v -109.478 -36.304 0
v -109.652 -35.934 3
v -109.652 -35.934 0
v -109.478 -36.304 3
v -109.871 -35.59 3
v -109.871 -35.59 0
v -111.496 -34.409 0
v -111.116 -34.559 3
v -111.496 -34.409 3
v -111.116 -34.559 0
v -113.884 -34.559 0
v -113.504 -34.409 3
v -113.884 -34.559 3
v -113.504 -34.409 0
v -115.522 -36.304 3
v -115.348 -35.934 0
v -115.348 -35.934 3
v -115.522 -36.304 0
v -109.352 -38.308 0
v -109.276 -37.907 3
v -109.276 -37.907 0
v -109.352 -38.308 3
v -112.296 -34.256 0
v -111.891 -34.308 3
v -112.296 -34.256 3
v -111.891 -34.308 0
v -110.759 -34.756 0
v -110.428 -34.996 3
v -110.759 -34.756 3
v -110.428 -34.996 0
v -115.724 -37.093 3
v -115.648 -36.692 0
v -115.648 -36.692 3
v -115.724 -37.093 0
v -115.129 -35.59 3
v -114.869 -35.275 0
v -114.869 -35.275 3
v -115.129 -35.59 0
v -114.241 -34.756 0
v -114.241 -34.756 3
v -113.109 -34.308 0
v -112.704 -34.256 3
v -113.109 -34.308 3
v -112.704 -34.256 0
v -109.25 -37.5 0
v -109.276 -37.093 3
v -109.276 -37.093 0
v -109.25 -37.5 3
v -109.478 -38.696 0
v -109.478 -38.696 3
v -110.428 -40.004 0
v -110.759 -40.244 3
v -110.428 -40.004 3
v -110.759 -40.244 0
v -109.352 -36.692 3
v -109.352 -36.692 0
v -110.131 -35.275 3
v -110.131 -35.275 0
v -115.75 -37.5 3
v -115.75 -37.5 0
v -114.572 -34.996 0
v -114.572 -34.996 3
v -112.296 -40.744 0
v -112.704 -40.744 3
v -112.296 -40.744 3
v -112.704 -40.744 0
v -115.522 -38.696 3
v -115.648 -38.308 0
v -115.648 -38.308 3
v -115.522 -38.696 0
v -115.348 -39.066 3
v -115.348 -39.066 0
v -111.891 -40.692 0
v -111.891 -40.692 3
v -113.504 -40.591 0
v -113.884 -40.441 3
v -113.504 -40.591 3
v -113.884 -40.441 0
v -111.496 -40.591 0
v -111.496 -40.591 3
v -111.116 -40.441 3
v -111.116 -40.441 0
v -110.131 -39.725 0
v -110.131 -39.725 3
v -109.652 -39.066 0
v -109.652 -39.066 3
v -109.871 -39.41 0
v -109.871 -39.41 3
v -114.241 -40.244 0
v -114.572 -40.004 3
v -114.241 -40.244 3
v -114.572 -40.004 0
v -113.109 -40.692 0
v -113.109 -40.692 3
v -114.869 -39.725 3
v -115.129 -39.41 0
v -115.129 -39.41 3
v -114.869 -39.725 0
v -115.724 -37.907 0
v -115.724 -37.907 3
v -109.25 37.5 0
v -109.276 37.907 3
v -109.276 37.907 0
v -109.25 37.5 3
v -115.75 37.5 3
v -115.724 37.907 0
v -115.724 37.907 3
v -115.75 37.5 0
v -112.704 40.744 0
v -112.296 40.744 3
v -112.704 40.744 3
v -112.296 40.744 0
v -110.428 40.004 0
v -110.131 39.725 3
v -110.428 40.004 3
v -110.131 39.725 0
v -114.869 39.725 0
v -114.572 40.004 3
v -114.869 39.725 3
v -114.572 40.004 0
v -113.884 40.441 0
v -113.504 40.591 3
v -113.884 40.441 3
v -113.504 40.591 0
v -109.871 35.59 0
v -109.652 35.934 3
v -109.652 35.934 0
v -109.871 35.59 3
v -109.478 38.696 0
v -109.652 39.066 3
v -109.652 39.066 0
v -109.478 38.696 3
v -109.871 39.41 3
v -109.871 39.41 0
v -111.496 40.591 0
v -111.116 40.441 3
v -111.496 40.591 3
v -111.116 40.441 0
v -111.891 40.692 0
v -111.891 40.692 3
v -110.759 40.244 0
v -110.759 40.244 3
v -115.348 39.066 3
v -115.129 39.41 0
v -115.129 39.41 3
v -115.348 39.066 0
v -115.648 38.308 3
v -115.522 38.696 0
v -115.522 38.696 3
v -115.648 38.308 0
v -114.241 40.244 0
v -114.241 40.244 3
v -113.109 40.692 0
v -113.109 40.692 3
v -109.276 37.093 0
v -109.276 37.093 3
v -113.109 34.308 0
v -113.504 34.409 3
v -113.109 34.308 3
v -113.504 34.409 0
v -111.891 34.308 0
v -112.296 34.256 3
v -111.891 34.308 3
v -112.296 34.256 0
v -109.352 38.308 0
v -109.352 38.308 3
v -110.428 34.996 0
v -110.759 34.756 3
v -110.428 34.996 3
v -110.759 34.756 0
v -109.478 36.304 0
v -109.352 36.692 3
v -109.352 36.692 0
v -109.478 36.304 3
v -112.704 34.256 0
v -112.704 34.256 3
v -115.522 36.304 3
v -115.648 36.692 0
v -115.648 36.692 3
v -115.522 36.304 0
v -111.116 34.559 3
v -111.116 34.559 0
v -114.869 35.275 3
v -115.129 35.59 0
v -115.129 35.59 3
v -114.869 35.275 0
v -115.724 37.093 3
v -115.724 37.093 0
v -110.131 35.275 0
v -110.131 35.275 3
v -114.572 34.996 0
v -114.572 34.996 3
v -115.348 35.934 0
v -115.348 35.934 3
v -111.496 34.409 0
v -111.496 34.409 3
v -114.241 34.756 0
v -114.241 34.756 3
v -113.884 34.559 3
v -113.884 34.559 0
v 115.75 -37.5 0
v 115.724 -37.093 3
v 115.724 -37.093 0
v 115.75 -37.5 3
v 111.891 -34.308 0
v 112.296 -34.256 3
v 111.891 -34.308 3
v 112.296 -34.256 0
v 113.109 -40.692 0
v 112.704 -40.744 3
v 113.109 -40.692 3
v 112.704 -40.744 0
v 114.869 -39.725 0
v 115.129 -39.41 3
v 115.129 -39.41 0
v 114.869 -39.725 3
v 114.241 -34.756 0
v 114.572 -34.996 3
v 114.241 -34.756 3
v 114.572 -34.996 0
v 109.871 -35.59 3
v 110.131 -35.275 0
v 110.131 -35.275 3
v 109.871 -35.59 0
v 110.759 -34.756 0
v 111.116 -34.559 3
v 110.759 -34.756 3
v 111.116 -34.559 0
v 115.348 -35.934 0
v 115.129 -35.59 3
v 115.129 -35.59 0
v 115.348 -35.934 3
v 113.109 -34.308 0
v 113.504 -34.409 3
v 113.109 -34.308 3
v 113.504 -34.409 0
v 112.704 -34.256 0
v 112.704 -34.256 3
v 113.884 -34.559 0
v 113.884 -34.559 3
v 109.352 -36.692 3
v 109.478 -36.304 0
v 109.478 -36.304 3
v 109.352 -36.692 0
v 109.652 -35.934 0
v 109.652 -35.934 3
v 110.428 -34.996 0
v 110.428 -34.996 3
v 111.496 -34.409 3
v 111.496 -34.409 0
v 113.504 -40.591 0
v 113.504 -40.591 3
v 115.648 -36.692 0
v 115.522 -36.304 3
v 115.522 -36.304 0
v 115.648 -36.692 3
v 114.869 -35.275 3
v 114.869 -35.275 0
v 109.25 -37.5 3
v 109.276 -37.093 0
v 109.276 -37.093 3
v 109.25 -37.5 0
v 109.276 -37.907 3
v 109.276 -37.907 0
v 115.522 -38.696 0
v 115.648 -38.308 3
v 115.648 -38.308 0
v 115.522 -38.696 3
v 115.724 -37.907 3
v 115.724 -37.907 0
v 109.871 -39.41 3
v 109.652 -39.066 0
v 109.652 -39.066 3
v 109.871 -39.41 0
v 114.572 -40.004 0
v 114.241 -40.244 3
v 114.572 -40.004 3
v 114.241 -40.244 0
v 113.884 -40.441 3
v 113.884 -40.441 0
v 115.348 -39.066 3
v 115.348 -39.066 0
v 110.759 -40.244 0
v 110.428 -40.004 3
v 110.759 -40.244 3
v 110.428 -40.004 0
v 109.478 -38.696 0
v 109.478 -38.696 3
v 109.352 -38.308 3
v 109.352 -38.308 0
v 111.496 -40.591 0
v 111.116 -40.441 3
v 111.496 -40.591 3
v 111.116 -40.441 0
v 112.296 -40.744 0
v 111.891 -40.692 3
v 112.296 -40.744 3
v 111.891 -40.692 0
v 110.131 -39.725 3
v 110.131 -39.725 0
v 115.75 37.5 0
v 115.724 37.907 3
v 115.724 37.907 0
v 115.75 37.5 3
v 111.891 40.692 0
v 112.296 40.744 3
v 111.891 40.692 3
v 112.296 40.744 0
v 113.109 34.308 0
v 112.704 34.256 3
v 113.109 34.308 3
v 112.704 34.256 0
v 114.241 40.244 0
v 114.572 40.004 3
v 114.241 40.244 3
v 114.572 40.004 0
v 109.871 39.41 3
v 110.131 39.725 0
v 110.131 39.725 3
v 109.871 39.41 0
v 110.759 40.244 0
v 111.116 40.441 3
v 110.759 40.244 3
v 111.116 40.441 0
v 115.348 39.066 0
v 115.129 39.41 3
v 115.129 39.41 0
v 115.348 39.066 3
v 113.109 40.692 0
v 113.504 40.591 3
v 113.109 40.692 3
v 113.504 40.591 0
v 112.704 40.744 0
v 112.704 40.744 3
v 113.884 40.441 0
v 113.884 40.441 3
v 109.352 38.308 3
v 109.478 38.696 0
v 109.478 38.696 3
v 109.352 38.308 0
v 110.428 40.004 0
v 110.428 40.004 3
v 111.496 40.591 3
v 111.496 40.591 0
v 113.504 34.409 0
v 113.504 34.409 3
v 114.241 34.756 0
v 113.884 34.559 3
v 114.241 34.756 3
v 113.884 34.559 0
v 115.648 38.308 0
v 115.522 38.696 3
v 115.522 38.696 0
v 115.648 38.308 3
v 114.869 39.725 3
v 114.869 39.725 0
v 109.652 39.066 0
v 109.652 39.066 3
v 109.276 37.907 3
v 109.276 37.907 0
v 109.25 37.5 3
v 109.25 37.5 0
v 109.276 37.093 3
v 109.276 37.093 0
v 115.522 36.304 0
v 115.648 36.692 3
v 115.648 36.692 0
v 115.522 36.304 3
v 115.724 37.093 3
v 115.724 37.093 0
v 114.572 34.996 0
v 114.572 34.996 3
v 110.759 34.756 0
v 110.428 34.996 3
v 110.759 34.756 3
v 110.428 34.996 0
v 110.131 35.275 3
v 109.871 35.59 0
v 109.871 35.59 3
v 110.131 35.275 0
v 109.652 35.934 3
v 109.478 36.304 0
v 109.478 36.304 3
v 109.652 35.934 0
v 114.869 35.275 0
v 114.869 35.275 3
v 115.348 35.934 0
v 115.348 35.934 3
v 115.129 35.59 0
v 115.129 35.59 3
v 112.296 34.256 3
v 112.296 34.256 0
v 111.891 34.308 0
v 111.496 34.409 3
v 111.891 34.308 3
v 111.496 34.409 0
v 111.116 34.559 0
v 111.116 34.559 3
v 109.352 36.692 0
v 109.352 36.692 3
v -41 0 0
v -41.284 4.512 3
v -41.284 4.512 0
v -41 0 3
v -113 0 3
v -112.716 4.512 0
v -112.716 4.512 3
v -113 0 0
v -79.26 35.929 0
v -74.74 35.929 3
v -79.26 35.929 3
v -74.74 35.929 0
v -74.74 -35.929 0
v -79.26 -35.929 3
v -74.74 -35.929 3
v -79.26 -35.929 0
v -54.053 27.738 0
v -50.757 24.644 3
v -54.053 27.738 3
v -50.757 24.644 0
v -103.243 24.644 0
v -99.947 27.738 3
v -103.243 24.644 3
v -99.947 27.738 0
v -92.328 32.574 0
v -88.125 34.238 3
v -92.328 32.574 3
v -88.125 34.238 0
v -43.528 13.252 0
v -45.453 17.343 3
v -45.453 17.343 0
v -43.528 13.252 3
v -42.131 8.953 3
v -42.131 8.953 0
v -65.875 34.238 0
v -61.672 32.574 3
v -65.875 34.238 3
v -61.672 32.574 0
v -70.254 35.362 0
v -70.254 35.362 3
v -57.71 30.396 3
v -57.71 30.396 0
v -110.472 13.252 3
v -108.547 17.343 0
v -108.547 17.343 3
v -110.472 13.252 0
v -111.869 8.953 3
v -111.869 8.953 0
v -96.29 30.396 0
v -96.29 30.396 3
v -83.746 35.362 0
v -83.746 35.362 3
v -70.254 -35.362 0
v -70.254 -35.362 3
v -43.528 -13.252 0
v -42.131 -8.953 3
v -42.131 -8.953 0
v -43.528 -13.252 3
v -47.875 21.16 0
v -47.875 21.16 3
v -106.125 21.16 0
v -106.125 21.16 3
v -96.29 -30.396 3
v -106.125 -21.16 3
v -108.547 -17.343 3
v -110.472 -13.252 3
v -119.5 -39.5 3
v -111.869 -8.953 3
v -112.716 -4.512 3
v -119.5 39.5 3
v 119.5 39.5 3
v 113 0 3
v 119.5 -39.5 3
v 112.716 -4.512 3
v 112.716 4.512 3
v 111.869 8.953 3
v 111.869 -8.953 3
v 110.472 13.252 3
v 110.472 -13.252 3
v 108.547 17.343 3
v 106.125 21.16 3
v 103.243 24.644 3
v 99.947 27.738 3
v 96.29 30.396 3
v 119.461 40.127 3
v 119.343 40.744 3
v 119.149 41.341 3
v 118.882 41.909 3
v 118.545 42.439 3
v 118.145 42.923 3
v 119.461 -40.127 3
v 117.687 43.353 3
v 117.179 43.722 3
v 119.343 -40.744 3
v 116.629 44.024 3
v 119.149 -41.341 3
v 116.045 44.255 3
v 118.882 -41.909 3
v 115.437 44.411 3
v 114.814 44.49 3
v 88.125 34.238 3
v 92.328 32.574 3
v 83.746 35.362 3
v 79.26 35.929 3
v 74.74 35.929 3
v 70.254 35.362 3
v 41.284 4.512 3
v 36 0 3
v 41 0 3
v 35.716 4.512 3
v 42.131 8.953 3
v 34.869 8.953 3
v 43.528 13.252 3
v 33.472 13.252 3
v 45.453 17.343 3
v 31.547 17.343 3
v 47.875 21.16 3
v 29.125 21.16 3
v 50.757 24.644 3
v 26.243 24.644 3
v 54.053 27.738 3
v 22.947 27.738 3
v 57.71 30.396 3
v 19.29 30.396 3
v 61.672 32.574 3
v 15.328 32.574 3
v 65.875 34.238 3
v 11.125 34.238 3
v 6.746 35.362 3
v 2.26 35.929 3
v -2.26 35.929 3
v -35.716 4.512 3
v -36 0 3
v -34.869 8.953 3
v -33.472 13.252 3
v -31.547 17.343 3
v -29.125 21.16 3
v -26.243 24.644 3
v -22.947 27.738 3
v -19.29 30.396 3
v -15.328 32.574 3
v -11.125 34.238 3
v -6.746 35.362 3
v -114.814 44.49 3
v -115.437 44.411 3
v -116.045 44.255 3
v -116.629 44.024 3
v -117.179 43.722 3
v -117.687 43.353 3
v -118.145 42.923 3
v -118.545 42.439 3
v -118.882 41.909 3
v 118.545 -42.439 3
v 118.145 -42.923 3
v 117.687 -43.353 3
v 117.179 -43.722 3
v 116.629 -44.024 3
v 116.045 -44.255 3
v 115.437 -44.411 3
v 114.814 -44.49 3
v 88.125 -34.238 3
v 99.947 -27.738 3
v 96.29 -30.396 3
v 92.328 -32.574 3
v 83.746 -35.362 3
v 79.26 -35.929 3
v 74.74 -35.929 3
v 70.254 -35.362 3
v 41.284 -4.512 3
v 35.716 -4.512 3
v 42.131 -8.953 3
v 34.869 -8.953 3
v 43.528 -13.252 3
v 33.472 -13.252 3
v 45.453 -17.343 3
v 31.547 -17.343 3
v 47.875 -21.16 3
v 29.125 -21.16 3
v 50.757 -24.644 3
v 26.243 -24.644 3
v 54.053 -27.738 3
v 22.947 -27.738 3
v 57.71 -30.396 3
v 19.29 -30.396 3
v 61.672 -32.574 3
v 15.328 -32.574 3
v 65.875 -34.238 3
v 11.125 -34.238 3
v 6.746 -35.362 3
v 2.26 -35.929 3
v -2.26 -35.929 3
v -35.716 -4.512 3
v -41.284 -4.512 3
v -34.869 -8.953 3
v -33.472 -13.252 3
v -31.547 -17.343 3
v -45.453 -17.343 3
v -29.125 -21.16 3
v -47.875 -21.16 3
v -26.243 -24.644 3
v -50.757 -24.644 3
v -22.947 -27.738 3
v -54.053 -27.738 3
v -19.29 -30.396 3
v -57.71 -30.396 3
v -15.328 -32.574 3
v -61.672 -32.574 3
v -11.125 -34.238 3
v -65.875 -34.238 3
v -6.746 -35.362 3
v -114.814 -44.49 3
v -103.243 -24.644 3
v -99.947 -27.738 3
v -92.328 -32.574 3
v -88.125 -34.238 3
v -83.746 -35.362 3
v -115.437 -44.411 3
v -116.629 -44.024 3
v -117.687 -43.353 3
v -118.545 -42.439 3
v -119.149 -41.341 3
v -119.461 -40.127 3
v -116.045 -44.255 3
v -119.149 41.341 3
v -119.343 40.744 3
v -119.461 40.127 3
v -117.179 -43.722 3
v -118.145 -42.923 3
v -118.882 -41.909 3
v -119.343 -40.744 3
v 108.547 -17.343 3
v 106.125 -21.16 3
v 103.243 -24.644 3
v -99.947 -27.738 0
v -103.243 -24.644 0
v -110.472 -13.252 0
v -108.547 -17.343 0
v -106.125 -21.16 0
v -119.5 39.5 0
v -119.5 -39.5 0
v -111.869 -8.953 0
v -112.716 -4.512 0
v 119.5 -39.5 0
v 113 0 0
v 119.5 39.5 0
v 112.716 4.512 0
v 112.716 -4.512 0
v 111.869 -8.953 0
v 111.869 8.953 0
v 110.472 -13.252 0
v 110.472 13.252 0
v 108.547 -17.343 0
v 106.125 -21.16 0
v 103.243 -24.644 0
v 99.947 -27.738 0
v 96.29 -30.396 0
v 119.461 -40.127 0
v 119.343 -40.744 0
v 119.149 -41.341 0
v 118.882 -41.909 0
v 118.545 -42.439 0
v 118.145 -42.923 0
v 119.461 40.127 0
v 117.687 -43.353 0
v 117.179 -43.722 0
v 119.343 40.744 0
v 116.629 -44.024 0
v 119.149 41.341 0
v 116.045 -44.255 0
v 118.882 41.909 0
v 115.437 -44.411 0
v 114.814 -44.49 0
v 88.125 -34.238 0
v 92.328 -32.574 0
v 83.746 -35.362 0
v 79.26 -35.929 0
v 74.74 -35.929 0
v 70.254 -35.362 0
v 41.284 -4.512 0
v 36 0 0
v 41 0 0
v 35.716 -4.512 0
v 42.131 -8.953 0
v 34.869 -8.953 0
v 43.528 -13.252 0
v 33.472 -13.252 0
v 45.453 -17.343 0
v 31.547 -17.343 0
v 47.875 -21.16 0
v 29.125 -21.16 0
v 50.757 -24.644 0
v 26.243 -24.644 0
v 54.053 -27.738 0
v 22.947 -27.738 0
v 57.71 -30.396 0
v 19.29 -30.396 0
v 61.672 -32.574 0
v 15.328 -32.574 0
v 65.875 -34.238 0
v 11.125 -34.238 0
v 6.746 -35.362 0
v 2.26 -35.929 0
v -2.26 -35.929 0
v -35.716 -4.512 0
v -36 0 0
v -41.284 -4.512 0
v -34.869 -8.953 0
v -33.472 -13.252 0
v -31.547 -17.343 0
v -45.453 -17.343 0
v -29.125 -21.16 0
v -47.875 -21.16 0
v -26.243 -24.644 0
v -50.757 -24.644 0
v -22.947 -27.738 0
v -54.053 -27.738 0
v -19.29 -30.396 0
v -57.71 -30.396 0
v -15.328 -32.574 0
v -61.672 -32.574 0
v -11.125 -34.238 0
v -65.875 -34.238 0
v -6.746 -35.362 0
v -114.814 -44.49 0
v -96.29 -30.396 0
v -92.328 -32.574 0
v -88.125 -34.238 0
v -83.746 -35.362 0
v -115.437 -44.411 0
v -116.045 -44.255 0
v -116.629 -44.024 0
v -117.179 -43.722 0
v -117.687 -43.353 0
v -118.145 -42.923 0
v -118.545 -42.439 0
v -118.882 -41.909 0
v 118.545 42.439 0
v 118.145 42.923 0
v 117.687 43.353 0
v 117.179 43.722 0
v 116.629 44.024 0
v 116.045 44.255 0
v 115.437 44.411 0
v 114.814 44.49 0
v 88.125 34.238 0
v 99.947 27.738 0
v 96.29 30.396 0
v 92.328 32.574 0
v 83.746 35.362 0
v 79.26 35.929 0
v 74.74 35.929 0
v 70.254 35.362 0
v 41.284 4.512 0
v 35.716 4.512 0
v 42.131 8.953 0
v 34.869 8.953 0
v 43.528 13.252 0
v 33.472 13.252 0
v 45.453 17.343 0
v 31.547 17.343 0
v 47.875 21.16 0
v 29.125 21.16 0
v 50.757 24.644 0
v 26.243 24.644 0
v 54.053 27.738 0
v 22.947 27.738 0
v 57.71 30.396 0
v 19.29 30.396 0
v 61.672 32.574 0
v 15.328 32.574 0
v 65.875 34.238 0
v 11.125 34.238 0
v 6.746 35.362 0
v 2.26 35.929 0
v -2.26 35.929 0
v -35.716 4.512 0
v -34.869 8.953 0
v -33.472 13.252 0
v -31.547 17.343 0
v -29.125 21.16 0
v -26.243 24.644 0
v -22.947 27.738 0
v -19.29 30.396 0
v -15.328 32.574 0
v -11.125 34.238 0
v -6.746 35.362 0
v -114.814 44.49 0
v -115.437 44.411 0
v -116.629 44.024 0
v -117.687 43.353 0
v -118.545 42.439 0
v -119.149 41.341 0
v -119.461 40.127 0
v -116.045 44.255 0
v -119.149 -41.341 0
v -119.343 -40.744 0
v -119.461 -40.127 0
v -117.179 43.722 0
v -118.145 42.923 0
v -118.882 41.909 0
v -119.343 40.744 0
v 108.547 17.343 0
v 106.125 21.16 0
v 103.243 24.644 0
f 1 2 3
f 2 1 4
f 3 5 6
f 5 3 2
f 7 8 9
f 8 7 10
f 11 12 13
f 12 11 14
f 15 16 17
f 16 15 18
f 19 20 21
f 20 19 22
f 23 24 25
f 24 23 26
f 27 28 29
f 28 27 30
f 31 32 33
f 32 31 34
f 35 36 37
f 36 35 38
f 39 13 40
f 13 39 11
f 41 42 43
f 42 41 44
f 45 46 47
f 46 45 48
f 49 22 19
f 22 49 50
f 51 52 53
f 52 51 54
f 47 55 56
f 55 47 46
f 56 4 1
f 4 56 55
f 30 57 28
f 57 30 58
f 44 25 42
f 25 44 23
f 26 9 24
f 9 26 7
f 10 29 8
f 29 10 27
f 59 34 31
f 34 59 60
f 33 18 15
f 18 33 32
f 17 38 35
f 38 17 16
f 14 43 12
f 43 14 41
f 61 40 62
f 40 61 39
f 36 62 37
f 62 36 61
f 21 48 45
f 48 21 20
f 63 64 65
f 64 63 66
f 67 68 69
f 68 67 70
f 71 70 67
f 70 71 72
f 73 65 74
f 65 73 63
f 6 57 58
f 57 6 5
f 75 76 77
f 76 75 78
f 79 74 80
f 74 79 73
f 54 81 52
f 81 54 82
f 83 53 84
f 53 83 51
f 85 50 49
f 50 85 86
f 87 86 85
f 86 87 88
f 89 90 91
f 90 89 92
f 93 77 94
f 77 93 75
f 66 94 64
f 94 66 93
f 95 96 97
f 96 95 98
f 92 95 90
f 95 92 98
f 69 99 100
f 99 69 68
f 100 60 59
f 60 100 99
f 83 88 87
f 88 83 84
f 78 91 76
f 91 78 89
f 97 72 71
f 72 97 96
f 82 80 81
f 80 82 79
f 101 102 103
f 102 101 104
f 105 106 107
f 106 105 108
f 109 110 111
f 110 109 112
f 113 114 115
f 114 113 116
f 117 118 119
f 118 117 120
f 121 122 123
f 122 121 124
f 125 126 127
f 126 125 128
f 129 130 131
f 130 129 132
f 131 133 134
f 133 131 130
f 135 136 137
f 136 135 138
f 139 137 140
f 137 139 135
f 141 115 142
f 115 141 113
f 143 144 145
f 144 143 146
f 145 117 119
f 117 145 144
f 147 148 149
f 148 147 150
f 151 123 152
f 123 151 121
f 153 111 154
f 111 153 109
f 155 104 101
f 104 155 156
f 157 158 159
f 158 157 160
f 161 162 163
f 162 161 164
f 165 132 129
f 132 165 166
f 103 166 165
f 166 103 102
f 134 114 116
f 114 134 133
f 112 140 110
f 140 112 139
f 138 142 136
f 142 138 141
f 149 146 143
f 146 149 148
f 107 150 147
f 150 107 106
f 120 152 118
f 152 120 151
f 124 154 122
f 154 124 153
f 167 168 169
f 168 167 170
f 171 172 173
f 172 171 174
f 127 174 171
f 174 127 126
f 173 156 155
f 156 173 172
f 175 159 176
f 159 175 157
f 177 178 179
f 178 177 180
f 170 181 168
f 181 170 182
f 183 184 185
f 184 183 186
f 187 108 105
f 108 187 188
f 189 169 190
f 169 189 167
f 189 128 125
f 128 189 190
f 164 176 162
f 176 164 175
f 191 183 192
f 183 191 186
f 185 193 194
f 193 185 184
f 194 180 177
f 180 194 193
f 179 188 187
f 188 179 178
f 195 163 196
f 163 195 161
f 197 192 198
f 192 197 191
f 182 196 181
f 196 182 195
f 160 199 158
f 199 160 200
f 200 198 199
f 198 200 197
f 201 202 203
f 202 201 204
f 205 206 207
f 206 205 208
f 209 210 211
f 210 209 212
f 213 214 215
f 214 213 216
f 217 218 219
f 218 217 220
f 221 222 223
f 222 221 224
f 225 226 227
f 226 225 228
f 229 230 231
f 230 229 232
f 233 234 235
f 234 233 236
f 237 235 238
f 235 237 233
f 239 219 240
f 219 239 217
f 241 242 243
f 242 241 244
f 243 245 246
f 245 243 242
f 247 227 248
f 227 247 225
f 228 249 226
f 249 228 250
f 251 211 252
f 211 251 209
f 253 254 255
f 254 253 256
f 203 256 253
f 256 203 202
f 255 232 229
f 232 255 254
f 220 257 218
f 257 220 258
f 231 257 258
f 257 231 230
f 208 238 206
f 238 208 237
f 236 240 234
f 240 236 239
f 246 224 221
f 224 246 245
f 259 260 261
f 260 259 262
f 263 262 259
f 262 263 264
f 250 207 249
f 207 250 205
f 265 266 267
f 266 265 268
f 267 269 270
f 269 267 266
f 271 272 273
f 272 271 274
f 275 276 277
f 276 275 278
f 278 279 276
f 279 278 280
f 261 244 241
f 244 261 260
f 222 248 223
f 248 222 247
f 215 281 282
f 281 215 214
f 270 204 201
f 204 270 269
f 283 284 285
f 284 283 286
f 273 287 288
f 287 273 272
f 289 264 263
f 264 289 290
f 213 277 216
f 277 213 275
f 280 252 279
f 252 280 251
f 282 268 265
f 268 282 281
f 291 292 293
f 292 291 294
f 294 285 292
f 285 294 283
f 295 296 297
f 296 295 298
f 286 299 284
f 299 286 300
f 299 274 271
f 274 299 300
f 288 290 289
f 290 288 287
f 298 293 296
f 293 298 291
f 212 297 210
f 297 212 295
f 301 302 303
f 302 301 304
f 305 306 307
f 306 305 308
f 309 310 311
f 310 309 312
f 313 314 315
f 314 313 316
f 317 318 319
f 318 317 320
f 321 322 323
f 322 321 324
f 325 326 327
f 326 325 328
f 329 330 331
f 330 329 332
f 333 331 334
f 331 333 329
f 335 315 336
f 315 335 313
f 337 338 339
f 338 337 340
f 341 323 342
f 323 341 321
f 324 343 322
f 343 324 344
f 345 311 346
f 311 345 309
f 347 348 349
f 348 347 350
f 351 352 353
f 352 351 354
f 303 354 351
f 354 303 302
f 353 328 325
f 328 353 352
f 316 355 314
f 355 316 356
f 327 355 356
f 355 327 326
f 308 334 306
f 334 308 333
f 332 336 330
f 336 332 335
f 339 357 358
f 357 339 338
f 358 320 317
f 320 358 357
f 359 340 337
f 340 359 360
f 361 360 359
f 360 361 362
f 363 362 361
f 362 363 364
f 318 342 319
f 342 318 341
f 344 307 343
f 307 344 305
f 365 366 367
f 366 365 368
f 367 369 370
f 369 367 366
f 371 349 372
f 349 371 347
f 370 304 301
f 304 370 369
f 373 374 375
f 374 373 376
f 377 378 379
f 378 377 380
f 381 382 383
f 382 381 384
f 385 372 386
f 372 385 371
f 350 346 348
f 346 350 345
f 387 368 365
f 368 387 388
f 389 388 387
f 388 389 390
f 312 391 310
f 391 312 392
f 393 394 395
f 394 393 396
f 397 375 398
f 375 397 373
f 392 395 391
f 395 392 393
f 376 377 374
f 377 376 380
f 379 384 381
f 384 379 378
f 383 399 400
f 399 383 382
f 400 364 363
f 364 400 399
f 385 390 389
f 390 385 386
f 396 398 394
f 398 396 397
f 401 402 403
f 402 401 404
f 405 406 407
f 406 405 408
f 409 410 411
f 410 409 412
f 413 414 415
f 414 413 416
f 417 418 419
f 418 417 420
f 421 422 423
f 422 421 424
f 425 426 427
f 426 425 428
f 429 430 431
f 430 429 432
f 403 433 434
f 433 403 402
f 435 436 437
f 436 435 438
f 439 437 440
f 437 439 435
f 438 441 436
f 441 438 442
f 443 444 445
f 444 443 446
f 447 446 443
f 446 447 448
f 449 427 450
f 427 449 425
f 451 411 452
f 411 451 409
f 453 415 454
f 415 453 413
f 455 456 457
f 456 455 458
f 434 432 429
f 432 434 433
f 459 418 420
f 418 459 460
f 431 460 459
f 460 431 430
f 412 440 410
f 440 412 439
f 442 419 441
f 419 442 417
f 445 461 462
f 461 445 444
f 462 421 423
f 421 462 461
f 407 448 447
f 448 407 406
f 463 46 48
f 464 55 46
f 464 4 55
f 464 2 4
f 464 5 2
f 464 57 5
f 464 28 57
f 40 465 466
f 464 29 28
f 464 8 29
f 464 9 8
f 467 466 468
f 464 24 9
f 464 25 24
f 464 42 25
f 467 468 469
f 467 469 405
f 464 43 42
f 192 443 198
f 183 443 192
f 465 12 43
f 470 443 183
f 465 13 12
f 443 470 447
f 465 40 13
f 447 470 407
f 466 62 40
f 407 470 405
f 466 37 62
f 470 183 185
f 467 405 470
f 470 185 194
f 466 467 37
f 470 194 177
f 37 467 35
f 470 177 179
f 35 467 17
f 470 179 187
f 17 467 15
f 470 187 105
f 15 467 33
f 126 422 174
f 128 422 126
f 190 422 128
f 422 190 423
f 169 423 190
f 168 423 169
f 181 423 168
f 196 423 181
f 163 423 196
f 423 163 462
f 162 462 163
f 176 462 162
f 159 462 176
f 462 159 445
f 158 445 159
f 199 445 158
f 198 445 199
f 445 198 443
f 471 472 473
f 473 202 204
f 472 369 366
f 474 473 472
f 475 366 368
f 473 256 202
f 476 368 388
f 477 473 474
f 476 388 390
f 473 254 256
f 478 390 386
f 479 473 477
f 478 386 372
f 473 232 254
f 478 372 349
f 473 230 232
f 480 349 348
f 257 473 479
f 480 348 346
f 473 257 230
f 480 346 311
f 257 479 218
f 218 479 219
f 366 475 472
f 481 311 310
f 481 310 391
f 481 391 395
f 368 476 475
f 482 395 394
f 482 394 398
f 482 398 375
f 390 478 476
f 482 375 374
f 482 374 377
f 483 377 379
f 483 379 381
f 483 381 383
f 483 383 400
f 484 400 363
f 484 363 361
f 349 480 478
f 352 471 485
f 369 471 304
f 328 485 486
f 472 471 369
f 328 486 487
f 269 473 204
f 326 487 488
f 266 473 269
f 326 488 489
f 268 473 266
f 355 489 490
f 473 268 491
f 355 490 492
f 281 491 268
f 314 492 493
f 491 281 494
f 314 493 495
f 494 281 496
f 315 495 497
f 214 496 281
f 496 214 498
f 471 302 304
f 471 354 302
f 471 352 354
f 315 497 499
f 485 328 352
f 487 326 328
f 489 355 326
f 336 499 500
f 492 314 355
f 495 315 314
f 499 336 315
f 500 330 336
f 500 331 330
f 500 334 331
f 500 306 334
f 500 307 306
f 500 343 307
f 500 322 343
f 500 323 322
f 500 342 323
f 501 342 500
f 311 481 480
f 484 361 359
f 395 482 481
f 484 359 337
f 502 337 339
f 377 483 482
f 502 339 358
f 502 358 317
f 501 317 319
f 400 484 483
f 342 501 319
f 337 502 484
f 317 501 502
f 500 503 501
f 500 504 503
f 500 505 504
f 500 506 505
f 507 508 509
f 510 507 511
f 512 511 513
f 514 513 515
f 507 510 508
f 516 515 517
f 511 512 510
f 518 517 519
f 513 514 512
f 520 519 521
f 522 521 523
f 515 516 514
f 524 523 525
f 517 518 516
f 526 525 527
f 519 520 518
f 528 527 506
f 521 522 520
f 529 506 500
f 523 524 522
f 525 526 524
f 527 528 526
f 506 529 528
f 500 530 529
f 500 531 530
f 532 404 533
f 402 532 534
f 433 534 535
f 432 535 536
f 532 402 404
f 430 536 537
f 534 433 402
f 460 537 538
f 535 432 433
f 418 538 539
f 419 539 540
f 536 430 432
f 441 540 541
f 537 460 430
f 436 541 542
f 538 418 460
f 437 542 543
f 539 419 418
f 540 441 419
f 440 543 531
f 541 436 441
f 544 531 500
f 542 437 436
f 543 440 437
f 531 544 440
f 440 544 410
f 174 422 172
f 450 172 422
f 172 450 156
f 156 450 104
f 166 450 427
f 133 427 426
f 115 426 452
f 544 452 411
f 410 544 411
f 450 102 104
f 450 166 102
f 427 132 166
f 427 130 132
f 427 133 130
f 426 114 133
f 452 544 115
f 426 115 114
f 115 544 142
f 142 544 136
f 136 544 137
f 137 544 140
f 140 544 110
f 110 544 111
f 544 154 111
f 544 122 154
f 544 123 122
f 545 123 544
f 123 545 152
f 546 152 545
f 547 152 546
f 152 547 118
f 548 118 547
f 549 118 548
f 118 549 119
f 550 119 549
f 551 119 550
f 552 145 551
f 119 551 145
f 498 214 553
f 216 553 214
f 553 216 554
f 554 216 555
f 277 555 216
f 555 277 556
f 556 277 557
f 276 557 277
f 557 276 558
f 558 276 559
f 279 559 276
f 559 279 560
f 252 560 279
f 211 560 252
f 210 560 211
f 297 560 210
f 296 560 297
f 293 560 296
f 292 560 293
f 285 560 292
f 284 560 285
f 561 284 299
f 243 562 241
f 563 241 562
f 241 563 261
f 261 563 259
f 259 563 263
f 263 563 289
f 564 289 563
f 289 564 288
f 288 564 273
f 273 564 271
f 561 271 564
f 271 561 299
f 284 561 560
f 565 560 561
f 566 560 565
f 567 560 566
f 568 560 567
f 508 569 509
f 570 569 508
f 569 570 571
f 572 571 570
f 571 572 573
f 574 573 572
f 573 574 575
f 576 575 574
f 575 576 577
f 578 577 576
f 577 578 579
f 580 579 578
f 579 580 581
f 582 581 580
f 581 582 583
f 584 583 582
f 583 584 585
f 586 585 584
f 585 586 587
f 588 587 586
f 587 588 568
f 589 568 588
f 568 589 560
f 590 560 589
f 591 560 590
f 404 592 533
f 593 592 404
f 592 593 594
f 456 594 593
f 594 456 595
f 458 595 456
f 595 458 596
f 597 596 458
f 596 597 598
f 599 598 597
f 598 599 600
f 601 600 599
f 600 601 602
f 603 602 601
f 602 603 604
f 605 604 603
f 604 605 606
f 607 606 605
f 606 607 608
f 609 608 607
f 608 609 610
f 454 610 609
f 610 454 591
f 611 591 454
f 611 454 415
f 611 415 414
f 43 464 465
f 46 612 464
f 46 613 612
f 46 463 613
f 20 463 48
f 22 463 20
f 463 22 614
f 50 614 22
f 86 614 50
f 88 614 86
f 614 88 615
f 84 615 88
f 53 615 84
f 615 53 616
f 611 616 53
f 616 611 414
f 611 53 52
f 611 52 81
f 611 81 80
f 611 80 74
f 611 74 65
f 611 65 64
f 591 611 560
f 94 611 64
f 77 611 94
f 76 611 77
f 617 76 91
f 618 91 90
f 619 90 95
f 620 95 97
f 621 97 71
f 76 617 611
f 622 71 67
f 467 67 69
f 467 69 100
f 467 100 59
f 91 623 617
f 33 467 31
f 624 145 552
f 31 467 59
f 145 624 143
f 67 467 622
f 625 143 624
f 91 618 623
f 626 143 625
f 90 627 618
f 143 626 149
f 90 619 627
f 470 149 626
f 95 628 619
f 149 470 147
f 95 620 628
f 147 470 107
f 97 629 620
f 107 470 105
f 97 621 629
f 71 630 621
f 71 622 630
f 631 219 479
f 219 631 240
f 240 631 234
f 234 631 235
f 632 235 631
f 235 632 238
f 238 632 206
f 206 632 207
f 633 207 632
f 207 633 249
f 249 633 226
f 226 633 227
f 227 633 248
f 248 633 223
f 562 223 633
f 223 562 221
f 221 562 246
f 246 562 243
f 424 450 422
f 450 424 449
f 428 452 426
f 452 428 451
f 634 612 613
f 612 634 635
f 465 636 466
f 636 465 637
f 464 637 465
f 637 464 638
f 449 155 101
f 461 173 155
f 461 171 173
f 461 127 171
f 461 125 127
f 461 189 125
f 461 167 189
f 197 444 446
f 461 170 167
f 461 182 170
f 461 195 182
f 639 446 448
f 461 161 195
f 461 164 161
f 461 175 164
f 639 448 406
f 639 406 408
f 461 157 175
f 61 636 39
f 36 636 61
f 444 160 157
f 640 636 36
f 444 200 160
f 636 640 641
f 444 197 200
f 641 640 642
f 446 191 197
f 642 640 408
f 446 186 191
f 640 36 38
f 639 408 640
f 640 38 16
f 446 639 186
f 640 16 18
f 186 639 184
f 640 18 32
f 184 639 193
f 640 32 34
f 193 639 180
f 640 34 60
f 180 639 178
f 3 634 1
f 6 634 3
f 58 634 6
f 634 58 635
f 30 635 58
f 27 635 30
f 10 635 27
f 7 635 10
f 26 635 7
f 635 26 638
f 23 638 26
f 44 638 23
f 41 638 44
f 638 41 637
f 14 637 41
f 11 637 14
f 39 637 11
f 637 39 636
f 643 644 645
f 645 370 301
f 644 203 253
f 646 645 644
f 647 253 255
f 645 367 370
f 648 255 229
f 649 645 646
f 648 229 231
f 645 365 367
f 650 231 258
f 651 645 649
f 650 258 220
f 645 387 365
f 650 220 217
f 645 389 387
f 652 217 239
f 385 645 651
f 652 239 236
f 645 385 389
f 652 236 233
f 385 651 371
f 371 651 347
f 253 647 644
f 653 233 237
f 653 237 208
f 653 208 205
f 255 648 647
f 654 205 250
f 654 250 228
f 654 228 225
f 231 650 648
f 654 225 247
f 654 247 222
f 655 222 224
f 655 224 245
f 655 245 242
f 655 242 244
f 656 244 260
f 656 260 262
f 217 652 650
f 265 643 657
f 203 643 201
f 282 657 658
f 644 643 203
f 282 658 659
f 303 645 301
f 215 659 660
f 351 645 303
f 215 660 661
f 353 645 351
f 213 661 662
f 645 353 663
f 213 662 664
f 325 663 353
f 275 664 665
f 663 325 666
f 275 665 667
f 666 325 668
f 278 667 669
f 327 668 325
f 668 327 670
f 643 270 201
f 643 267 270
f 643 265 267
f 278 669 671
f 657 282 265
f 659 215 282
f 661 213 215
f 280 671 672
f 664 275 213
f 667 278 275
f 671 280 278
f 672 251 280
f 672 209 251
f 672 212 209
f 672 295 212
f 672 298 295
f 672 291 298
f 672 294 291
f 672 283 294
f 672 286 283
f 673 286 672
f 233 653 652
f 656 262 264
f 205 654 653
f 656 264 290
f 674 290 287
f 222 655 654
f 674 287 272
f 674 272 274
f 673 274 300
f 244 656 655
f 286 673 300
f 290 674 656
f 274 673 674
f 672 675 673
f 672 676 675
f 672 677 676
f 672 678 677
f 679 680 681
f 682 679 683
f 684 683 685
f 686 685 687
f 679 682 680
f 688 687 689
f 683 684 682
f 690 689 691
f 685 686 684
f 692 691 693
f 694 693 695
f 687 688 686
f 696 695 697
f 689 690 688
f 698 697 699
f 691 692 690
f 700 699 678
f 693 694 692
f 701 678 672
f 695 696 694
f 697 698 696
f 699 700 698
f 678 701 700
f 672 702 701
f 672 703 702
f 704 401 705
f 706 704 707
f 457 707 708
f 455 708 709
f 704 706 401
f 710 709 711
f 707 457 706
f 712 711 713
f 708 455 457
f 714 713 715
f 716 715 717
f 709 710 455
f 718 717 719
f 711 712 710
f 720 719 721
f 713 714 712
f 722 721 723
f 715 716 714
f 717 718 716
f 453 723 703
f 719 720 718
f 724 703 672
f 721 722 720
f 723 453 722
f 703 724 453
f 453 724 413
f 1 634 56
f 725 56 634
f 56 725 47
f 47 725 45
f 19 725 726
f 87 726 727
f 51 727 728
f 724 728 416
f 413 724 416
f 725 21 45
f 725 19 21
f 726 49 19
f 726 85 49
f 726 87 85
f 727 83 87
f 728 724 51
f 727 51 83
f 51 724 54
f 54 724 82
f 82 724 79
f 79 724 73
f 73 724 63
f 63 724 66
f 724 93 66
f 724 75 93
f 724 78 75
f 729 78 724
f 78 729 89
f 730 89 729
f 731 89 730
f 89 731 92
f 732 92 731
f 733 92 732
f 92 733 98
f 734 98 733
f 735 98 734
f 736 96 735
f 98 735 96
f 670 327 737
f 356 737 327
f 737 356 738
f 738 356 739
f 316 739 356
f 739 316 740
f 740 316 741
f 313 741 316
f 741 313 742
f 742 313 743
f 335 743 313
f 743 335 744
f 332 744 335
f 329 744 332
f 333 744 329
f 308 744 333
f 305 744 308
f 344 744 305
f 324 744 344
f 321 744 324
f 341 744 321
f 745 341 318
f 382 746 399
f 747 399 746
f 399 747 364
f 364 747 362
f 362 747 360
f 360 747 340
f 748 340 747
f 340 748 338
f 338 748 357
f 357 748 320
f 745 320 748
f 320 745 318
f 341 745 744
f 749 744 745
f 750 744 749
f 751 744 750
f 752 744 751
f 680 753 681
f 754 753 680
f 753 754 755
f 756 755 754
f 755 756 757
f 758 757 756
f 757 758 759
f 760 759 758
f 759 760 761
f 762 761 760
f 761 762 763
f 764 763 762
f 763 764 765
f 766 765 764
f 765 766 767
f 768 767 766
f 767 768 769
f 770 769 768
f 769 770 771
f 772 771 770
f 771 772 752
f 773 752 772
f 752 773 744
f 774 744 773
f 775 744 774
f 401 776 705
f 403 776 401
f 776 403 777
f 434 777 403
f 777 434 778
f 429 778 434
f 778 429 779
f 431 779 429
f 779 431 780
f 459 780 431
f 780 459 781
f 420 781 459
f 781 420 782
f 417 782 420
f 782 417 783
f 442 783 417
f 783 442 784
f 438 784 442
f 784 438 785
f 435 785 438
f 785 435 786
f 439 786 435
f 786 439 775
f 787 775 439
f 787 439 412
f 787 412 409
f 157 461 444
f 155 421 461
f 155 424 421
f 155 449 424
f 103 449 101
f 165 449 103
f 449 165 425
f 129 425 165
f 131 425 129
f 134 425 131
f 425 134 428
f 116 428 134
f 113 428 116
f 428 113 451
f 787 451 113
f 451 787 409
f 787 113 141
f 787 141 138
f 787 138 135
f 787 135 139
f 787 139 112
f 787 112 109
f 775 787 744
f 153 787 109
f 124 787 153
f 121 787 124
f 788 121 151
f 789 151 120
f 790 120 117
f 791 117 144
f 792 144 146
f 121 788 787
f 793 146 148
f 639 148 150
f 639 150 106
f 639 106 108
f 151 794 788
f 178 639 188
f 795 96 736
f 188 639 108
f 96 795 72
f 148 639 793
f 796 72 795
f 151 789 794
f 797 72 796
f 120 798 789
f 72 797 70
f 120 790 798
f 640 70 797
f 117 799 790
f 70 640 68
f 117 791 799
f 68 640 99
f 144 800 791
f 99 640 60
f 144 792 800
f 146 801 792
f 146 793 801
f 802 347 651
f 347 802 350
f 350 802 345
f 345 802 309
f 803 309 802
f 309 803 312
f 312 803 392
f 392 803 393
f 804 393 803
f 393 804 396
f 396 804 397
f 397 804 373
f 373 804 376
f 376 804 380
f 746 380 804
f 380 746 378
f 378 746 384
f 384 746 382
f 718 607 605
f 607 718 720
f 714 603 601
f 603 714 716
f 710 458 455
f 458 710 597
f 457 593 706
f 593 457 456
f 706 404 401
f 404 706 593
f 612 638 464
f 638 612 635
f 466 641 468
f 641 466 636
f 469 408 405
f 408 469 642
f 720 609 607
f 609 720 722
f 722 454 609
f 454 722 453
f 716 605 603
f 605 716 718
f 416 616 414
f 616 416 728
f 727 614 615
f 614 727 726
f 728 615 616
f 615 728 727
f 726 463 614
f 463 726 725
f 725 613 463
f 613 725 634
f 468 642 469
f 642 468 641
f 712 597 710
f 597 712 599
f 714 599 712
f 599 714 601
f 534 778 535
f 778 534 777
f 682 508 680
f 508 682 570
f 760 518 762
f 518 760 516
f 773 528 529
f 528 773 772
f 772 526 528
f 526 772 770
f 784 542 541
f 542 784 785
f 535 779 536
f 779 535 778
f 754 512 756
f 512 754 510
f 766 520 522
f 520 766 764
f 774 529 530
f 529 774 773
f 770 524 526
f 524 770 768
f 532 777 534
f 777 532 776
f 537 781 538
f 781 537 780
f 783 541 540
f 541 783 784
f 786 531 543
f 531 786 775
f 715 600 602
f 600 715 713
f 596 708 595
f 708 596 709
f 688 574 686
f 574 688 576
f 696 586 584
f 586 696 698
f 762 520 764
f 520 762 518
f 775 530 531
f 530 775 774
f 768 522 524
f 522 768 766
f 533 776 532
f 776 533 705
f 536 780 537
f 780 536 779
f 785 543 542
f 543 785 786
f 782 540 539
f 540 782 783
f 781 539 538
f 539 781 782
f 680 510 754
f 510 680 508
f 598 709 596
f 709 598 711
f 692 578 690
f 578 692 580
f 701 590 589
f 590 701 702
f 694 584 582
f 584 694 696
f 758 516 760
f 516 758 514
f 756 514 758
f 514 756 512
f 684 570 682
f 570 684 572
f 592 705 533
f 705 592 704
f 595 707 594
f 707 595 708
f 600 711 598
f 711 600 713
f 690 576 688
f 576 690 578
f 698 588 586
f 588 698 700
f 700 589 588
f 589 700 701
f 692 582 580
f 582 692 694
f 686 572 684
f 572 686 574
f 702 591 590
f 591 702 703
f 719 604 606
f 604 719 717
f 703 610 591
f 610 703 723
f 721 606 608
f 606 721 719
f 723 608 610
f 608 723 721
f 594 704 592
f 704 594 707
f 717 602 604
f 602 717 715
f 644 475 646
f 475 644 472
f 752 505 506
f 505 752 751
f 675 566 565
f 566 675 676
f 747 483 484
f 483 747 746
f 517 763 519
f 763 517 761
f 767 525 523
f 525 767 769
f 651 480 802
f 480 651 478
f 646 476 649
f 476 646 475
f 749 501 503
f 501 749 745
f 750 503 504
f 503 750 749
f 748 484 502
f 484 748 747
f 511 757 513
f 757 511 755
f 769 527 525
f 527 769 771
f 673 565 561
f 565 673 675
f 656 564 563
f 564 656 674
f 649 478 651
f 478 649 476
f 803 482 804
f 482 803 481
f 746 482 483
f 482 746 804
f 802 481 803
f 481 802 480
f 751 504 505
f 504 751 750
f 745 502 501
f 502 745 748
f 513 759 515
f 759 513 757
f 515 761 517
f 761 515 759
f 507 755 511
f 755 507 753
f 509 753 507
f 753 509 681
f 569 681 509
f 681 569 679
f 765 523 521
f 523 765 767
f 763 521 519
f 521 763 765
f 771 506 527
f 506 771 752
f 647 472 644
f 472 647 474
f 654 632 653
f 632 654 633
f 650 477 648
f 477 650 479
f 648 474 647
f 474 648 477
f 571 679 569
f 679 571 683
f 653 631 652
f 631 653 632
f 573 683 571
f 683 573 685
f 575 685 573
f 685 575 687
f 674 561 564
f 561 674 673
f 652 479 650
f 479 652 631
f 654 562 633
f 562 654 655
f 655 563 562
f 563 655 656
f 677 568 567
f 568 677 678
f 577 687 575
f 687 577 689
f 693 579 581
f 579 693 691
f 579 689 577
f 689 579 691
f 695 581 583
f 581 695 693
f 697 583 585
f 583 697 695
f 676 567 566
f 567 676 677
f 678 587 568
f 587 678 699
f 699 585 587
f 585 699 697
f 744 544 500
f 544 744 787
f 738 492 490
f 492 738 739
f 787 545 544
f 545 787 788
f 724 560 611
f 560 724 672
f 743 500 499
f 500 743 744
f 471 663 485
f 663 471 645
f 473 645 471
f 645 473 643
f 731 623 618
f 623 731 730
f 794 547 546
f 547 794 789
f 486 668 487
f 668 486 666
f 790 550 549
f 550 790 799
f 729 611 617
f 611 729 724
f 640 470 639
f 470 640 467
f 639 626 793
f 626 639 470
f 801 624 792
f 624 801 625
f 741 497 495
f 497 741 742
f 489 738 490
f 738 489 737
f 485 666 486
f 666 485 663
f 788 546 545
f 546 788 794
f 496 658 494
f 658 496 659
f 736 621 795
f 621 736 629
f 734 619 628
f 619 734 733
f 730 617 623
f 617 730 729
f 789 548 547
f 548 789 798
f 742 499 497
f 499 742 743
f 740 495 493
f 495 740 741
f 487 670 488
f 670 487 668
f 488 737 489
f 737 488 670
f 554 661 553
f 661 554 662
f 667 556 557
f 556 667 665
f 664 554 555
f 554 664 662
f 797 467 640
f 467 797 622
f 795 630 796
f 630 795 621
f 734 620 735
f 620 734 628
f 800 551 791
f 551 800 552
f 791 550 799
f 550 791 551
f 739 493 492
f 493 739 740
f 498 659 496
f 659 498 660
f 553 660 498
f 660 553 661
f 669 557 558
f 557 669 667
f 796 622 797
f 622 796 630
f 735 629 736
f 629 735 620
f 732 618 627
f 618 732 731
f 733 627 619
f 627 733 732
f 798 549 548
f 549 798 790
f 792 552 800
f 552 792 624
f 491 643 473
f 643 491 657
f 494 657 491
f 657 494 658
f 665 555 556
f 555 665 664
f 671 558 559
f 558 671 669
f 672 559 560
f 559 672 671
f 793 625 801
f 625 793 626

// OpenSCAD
$fn = 50;


difference() {
	union() {
		hull() {
			translate(v = [-114.5000000000, 39.5000000000, 0]) {
				cylinder(h = 3, r = 5);
			}
			translate(v = [114.5000000000, 39.5000000000, 0]) {
				cylinder(h = 3, r = 5);
			}
			translate(v = [-114.5000000000, -39.5000000000, 0]) {
				cylinder(h = 3, r = 5);
			}
			translate(v = [114.5000000000, -39.5000000000, 0]) {
				cylinder(h = 3, r = 5);
			}
		}
	}
	union() {
		#translate(v = [-112.5000000000, -37.5000000000, -100.0000000000]) {
			cylinder(h = 200, r = 3.2500000000);
		}
		#translate(v = [-112.5000000000, 37.5000000000, -100.0000000000]) {
			cylinder(h = 200, r = 3.2500000000);
		}
		#translate(v = [112.5000000000, -37.5000000000, -100.0000000000]) {
			cylinder(h = 200, r = 3.2500000000);
		}
		#translate(v = [112.5000000000, 37.5000000000, -100.0000000000]) {
			cylinder(h = 200, r = 3.2500000000);
		}
		#translate(v = [-77.0000000000, 0, 0]) {
			cylinder(h = 3, r = 36.0000000000);
		}
		#cylinder(h = 3, r = 36.0000000000);
		#translate(v = [77.0000000000, 0, 0]) {
			cylinder(h = 3, r = 36.0000000000);
		}
	}
}
